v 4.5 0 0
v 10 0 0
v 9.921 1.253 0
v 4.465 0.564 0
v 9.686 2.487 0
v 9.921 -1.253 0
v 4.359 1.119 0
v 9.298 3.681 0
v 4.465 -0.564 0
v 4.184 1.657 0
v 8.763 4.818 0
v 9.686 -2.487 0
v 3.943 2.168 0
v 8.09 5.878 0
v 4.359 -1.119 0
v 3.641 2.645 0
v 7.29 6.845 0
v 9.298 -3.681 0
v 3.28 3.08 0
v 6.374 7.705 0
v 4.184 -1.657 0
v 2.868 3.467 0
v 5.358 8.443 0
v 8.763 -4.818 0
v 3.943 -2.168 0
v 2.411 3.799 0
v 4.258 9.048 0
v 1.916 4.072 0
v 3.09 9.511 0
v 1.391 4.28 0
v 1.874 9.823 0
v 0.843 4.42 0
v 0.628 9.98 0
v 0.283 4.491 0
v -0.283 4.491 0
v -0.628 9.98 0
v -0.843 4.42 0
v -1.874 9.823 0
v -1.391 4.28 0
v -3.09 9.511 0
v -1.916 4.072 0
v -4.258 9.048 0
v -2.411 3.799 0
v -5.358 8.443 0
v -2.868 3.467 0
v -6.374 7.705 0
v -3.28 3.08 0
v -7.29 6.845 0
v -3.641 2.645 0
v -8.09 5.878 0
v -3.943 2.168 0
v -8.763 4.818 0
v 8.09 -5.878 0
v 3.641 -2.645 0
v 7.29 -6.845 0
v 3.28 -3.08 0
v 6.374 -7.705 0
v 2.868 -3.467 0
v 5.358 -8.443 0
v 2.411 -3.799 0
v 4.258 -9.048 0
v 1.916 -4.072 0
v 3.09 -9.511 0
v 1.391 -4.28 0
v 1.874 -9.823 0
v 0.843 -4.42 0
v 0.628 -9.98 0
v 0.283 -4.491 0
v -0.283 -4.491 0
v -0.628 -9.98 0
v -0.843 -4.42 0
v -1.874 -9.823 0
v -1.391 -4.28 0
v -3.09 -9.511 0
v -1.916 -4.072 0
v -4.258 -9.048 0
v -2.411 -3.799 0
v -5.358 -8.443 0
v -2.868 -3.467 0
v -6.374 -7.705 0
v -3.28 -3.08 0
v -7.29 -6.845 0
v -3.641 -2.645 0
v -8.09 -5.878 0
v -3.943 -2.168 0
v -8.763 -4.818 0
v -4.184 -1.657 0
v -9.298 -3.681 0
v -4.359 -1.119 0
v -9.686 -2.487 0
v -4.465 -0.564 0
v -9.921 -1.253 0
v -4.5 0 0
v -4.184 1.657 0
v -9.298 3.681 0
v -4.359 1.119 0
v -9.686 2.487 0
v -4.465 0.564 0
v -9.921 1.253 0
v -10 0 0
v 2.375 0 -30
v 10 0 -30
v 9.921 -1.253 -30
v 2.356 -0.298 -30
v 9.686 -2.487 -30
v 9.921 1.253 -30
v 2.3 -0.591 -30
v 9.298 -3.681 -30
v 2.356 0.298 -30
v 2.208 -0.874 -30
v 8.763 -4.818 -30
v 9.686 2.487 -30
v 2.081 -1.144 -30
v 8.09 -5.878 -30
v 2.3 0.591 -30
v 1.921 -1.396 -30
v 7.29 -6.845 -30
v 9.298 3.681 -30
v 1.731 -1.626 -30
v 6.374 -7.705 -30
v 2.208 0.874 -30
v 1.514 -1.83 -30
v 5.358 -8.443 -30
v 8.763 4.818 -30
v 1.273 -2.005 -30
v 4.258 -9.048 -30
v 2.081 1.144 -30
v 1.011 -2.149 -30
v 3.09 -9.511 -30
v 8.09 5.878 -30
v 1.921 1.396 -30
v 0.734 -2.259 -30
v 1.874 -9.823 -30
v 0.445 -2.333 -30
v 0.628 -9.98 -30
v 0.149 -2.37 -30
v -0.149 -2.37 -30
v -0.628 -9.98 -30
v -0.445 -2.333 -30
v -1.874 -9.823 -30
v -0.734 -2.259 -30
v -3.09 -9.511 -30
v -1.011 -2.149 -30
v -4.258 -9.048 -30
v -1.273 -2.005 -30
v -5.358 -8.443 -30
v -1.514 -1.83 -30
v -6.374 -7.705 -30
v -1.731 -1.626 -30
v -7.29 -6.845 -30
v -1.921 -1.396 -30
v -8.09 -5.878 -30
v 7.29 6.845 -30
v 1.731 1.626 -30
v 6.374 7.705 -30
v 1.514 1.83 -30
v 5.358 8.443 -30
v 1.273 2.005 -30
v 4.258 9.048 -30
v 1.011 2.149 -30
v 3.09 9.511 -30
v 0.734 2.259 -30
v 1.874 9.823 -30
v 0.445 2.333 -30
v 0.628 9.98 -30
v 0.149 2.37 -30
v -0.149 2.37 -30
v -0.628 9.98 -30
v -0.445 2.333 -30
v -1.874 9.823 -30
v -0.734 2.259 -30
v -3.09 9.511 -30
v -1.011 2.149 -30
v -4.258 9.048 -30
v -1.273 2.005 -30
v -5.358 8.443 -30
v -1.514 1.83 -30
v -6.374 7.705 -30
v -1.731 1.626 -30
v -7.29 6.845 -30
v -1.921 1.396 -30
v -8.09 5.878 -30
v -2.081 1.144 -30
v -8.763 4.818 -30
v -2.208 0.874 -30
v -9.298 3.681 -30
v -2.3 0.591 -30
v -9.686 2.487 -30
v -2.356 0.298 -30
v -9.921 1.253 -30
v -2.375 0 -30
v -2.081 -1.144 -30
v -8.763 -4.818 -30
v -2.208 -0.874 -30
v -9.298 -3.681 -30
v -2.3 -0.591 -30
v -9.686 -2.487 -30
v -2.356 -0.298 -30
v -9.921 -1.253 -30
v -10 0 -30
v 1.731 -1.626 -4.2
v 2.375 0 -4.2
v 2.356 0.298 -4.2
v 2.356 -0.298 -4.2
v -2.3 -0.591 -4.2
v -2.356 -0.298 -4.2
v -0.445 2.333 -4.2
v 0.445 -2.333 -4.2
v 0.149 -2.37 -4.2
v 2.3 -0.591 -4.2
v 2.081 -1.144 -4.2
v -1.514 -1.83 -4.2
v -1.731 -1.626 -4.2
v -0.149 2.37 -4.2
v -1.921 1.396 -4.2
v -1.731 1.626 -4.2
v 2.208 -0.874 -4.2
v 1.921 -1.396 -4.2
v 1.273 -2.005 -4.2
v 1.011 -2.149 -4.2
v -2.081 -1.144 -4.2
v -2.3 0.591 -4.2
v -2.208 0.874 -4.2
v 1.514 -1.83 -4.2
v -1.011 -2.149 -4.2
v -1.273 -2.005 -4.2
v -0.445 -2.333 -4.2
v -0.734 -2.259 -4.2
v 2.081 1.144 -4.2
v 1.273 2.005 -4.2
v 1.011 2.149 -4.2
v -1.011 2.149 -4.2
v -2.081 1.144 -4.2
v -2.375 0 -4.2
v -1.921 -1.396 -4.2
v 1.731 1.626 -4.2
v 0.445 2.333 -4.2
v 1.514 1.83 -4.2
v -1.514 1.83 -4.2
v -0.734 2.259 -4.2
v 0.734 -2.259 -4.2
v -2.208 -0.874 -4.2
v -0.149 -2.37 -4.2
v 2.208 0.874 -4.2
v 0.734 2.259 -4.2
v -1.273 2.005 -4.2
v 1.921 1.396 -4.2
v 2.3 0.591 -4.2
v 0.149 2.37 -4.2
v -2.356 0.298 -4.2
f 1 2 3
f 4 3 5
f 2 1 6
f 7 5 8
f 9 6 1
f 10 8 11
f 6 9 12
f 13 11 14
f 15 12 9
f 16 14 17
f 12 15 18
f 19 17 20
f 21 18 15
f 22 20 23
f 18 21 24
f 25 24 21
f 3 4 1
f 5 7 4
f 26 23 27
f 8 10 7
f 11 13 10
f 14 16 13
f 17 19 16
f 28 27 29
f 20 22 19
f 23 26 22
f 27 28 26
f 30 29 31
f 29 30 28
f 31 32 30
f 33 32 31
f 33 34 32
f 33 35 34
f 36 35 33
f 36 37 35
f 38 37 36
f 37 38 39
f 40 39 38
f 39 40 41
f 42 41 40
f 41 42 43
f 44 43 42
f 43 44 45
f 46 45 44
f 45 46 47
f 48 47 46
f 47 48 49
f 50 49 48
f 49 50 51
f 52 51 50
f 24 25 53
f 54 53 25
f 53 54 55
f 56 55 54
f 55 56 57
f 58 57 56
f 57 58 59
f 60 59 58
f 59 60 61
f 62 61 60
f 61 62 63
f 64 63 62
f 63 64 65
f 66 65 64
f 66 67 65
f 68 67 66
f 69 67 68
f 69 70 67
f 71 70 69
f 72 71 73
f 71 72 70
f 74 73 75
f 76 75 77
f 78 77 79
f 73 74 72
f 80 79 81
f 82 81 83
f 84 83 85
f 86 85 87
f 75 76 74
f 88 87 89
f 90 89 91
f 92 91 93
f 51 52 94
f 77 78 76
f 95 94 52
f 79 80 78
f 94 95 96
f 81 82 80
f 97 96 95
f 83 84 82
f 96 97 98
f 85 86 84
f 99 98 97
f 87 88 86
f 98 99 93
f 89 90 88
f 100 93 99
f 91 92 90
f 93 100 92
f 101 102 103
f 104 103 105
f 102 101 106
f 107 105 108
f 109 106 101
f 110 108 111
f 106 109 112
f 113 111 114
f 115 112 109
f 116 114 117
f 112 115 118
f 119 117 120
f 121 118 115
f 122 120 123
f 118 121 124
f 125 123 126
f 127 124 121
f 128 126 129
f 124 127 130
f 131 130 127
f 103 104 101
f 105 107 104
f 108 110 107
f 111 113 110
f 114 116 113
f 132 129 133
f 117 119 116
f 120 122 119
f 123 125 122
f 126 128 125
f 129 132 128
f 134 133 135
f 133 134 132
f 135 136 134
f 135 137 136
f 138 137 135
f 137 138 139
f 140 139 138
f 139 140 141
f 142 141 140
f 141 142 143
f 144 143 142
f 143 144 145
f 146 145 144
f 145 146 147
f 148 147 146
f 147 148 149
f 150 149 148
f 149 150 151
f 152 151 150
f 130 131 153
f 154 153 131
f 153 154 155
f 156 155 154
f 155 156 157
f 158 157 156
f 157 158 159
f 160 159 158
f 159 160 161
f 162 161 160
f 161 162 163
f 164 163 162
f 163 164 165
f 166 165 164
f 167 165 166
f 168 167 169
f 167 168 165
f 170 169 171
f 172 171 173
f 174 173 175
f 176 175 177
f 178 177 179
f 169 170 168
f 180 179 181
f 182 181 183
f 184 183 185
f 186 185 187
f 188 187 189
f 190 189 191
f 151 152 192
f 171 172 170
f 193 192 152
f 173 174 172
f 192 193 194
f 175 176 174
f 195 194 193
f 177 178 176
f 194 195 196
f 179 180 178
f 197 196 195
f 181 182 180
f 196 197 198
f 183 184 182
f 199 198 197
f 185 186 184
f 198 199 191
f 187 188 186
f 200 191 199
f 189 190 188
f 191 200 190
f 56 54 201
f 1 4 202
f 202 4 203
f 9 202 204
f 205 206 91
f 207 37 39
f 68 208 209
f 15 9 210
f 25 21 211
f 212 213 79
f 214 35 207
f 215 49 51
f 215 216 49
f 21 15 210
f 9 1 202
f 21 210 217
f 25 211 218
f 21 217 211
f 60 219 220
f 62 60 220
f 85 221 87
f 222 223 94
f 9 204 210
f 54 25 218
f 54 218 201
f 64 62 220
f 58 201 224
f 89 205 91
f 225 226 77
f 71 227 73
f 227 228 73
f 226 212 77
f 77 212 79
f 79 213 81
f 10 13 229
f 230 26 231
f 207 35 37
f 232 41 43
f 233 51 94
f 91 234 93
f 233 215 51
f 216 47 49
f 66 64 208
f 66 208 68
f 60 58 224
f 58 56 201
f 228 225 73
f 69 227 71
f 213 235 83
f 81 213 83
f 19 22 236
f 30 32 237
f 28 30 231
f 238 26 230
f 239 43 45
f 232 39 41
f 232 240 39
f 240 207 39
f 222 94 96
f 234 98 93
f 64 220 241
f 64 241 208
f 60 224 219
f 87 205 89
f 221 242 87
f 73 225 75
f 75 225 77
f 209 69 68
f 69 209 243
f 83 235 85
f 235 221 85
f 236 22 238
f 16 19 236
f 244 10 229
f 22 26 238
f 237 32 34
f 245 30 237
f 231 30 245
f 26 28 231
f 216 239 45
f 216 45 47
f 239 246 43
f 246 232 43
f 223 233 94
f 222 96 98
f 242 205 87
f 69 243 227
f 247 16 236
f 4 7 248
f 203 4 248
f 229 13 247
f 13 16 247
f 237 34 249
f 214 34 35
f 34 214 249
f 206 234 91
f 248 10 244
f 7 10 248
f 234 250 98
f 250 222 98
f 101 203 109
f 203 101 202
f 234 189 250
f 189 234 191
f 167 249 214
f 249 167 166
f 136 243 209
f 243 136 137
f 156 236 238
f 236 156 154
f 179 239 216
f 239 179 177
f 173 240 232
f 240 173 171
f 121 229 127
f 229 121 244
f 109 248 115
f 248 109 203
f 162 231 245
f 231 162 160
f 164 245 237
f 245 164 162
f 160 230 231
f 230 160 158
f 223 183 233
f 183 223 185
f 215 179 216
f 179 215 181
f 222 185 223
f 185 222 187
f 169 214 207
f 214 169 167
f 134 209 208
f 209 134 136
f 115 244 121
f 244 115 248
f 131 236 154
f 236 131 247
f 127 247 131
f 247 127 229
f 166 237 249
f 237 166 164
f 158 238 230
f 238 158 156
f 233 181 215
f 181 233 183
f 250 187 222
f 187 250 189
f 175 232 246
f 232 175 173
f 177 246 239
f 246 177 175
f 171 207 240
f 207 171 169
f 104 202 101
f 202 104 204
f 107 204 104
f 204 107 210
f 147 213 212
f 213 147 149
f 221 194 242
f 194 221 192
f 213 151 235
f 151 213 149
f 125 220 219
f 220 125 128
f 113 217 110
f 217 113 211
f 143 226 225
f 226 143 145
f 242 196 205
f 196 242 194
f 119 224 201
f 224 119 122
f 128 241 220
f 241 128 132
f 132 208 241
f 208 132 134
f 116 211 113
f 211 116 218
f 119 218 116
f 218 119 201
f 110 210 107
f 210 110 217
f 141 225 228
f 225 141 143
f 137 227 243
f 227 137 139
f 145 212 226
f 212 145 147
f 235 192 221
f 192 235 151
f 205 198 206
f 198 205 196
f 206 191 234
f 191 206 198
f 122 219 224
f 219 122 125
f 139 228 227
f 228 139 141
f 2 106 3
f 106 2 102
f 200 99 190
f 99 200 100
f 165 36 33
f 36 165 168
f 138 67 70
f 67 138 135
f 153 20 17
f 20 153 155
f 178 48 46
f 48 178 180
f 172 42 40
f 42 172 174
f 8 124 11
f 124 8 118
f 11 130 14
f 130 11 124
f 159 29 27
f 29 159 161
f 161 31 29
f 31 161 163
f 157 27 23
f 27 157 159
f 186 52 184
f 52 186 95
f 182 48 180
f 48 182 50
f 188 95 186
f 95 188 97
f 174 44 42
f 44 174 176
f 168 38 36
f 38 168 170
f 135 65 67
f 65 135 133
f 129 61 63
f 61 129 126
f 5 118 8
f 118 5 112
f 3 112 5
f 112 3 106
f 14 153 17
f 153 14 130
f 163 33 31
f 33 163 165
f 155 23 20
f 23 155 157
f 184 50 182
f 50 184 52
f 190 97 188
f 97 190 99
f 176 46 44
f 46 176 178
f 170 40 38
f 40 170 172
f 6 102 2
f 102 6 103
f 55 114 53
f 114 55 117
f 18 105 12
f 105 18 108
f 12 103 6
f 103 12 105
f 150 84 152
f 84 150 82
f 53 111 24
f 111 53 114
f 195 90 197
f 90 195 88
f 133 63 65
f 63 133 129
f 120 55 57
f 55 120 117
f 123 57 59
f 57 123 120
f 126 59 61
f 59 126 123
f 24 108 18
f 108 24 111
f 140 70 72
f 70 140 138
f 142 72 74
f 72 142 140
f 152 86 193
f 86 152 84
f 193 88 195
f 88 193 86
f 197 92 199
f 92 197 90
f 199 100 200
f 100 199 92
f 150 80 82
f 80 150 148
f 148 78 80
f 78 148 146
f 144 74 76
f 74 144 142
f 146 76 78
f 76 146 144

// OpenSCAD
$fn = 50;


difference() {
	union() {
		translate(v = [0, 0, -30.0000000000]) {
			cylinder(h = 30, r = 10.0000000000);
		}
		cylinder(h = 0, r = 16.0000000000);
	}
	union() {
		translate(v = [0, 0, 0]) {
			rotate(a = [0, 0, 0]) {
				difference() {
					union() {
						#translate(v = [0, 0, -30.0000000000]) {
							cylinder(h = 30, r = 2.2500000000);
						}
						#translate(v = [0, 0, -4.2000000000]) {
							cylinder(h = 4.2000000000, r1 = 2.3750000000, r2 = 4.5000000000);
						}
						#translate(v = [0, 0, -30.0000000000]) {
							cylinder(h = 30, r = 2.3750000000);
						}
						#translate(v = [0, 0, -30.0000000000]) {
							cylinder(h = 30, r = 2.2500000000);
						}
					}
					union();
				}
			}
		}
	}
}
